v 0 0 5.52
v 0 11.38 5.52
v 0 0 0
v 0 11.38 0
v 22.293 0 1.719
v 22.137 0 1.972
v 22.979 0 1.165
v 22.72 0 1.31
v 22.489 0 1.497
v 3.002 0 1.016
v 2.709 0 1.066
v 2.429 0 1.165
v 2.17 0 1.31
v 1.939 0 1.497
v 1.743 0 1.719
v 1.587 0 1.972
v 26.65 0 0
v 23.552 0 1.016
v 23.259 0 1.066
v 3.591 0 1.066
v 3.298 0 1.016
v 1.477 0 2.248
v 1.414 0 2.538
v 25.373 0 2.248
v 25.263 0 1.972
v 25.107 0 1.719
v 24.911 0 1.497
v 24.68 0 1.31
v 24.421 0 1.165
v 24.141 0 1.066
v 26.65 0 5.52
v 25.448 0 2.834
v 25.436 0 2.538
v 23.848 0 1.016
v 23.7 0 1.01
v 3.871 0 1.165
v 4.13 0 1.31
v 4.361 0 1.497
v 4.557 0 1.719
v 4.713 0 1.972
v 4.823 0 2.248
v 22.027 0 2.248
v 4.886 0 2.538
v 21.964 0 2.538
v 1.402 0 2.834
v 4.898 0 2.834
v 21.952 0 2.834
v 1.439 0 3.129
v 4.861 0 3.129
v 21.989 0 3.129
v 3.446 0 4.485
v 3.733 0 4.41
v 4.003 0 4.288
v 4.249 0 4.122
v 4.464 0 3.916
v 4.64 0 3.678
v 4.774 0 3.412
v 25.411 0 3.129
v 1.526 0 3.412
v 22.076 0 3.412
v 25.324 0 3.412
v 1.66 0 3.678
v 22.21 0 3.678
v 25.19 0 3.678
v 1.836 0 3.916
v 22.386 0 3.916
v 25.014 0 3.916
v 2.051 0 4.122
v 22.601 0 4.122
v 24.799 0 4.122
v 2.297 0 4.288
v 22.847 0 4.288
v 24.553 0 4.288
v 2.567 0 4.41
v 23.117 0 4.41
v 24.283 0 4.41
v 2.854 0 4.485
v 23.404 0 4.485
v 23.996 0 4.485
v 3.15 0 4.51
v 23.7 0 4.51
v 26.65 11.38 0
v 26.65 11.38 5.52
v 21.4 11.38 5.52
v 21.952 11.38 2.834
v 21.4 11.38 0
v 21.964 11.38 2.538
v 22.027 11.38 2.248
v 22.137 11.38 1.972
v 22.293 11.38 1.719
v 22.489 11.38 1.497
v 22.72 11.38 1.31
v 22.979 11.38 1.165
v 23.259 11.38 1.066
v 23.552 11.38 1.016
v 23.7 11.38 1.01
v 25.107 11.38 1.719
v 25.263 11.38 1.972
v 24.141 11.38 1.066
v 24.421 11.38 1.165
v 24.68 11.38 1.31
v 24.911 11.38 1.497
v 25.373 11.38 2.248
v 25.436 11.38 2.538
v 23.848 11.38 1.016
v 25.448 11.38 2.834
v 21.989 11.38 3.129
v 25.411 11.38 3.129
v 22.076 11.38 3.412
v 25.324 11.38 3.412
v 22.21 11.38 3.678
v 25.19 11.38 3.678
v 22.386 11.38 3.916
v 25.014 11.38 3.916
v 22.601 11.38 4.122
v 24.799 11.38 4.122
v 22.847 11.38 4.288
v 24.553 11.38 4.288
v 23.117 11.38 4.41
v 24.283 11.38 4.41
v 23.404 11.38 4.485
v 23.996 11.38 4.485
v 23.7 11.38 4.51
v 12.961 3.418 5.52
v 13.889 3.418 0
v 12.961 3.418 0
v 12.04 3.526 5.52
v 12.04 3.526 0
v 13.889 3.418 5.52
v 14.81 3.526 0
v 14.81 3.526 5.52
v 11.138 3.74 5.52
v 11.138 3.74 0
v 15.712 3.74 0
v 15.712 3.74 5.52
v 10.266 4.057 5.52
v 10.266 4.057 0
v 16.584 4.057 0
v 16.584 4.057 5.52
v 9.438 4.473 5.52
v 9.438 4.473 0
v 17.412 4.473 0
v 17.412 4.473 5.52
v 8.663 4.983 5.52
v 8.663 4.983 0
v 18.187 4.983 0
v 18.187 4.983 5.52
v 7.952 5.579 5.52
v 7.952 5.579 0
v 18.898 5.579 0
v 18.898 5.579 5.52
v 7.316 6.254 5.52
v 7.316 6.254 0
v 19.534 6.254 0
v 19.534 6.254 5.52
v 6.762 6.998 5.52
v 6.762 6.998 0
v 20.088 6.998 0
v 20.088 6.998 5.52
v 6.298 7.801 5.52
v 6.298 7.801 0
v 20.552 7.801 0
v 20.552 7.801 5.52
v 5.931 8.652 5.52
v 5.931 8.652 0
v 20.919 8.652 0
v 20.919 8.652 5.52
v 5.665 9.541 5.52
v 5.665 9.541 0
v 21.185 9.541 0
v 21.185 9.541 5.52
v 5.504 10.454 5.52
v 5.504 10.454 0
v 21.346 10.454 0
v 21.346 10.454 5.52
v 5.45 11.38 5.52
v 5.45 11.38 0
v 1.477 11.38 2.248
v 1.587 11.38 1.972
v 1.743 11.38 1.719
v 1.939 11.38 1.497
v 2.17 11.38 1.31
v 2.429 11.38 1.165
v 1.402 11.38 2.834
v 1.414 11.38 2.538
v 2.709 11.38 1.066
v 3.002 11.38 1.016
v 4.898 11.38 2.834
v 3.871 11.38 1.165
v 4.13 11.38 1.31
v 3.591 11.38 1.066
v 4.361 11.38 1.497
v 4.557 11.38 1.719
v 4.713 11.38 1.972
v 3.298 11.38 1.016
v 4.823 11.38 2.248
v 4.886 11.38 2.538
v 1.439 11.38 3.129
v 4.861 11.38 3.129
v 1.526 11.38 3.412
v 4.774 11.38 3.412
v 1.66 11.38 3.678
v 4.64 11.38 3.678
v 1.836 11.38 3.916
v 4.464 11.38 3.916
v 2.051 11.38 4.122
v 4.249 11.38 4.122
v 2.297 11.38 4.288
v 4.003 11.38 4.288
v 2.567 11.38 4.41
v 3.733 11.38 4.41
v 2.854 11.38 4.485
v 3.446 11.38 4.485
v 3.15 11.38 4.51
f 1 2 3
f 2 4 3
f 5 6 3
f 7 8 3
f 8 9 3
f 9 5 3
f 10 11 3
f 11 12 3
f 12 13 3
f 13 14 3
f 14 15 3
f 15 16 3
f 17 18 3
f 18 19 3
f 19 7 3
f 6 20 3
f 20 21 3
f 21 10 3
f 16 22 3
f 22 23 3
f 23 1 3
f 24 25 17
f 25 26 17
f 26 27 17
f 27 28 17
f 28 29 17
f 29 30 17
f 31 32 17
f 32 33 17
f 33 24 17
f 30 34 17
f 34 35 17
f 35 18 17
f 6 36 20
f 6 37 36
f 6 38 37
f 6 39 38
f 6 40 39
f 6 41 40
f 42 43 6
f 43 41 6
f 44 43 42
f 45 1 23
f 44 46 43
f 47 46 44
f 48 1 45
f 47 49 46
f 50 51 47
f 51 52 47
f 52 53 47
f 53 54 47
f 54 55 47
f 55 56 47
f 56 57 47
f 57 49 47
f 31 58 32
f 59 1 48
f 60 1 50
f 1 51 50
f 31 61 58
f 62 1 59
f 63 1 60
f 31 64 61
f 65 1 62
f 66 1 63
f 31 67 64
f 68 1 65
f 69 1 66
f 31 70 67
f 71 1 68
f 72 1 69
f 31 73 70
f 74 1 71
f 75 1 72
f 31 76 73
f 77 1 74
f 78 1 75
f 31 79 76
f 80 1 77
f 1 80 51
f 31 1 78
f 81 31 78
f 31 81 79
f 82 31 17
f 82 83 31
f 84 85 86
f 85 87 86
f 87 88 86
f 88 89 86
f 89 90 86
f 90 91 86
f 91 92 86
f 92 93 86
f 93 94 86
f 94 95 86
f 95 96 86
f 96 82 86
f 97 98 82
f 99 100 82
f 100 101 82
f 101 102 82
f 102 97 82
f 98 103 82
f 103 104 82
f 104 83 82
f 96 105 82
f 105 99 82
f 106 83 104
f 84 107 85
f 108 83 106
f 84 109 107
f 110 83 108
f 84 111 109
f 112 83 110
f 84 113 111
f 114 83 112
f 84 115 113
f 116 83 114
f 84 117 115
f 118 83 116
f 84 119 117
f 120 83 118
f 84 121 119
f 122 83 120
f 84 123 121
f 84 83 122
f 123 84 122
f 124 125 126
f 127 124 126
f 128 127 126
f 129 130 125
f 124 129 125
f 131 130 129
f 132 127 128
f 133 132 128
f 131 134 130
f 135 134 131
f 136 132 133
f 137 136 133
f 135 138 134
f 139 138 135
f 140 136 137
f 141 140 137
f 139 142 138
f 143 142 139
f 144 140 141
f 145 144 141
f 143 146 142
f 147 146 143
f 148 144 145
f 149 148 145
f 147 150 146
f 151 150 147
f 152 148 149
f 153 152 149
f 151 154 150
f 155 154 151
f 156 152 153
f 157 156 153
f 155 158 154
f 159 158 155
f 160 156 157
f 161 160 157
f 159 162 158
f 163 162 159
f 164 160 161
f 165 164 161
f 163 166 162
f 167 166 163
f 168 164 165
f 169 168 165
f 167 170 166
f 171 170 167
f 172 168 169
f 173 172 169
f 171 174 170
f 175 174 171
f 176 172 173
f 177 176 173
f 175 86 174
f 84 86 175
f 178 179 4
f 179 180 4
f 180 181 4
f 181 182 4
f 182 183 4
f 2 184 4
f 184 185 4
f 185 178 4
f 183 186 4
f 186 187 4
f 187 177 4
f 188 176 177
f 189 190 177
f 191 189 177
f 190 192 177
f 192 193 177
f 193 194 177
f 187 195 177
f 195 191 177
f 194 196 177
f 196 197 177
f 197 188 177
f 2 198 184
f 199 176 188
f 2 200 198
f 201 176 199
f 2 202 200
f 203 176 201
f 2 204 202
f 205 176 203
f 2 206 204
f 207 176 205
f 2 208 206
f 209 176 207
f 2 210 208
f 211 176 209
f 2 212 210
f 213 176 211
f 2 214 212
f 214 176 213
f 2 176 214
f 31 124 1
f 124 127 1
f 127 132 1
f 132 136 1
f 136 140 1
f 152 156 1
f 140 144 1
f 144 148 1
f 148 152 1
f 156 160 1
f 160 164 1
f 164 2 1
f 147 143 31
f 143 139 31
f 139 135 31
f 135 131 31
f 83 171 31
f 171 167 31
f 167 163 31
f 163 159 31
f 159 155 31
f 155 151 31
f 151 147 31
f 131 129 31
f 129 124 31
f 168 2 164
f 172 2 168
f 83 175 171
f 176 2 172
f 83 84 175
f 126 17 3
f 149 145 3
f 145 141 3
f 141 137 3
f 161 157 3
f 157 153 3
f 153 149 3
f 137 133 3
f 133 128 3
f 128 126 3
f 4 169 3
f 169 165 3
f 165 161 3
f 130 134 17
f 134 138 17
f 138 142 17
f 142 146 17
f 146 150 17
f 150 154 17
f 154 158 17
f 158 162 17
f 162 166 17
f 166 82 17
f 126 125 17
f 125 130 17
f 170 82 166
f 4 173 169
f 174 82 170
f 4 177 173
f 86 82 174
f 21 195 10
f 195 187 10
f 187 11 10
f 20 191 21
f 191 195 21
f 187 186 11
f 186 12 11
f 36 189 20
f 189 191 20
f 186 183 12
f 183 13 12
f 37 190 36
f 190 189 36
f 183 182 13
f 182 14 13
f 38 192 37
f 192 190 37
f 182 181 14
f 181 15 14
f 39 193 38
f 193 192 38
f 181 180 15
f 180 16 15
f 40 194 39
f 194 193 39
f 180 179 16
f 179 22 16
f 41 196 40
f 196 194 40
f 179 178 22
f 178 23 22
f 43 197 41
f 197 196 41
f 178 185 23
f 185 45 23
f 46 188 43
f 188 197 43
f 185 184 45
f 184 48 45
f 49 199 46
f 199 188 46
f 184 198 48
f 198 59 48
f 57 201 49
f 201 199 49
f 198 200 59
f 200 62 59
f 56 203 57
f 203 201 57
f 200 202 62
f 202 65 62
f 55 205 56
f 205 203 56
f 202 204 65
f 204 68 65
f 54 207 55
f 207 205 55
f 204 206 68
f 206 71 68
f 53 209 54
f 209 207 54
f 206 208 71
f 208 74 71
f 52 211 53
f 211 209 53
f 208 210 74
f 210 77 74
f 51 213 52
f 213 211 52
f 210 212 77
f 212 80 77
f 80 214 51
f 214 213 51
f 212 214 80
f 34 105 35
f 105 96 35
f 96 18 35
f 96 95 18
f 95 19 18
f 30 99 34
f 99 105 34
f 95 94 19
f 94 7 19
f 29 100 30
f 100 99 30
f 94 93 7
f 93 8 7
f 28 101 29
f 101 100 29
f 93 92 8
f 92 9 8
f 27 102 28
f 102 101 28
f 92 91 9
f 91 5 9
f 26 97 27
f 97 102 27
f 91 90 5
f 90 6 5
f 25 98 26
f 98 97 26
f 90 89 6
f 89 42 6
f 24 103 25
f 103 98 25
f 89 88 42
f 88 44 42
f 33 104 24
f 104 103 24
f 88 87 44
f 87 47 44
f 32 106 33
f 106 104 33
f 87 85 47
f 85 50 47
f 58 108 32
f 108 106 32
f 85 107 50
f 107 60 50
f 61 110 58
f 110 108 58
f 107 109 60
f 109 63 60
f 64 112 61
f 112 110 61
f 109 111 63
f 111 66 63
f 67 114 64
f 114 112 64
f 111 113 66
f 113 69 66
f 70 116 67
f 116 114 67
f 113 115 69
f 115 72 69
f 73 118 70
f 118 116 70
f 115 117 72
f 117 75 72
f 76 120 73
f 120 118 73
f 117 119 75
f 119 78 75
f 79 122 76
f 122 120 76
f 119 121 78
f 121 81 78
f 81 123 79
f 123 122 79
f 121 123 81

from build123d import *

# Parameters (mm, degrees)
BOSS_EXTRUDE1_DEPTH = 5.52
SKETCH2_R           = 1.75
CUT_EXTRUDE1_DEPTH  = 30.499106766


with BuildPart() as part:
    # Sketch1 → Boss-Extrude1 (new body)
    with BuildSketch(Plane.XY):
        with BuildLine():
            Line((21.4, 11.38), (26.65, 11.38))
            Line((26.65, 11.38), (26.65, 0))
            Line((26.65, 0), (0, 0))
            Line((0, 0), (0, 11.38))
            Line((0, 11.38), (5.45, 11.38))
            ThreePointArc((5.45, 11.38), (13.425, 3.405), (21.4, 11.38))
        make_face()
    extrude(amount=BOSS_EXTRUDE1_DEPTH)

    # Sketch2 → Cut-Extrude1 (cut, through all)
    with BuildSketch(Plane(origin=(0, 11.38, 0), x_dir=(1, 0, 0), z_dir=(0, 1, 0))):
        with Locations(Location((3.15, -2.76, 0), (0, 0, 270))):
            Circle(SKETCH2_R)
        with Locations(Location((23.7, -2.76, 0), (0, 0, 90))):
            Circle(SKETCH2_R)
    extrude(amount=-CUT_EXTRUDE1_DEPTH, mode=Mode.SUBTRACT)


solid = part.part
